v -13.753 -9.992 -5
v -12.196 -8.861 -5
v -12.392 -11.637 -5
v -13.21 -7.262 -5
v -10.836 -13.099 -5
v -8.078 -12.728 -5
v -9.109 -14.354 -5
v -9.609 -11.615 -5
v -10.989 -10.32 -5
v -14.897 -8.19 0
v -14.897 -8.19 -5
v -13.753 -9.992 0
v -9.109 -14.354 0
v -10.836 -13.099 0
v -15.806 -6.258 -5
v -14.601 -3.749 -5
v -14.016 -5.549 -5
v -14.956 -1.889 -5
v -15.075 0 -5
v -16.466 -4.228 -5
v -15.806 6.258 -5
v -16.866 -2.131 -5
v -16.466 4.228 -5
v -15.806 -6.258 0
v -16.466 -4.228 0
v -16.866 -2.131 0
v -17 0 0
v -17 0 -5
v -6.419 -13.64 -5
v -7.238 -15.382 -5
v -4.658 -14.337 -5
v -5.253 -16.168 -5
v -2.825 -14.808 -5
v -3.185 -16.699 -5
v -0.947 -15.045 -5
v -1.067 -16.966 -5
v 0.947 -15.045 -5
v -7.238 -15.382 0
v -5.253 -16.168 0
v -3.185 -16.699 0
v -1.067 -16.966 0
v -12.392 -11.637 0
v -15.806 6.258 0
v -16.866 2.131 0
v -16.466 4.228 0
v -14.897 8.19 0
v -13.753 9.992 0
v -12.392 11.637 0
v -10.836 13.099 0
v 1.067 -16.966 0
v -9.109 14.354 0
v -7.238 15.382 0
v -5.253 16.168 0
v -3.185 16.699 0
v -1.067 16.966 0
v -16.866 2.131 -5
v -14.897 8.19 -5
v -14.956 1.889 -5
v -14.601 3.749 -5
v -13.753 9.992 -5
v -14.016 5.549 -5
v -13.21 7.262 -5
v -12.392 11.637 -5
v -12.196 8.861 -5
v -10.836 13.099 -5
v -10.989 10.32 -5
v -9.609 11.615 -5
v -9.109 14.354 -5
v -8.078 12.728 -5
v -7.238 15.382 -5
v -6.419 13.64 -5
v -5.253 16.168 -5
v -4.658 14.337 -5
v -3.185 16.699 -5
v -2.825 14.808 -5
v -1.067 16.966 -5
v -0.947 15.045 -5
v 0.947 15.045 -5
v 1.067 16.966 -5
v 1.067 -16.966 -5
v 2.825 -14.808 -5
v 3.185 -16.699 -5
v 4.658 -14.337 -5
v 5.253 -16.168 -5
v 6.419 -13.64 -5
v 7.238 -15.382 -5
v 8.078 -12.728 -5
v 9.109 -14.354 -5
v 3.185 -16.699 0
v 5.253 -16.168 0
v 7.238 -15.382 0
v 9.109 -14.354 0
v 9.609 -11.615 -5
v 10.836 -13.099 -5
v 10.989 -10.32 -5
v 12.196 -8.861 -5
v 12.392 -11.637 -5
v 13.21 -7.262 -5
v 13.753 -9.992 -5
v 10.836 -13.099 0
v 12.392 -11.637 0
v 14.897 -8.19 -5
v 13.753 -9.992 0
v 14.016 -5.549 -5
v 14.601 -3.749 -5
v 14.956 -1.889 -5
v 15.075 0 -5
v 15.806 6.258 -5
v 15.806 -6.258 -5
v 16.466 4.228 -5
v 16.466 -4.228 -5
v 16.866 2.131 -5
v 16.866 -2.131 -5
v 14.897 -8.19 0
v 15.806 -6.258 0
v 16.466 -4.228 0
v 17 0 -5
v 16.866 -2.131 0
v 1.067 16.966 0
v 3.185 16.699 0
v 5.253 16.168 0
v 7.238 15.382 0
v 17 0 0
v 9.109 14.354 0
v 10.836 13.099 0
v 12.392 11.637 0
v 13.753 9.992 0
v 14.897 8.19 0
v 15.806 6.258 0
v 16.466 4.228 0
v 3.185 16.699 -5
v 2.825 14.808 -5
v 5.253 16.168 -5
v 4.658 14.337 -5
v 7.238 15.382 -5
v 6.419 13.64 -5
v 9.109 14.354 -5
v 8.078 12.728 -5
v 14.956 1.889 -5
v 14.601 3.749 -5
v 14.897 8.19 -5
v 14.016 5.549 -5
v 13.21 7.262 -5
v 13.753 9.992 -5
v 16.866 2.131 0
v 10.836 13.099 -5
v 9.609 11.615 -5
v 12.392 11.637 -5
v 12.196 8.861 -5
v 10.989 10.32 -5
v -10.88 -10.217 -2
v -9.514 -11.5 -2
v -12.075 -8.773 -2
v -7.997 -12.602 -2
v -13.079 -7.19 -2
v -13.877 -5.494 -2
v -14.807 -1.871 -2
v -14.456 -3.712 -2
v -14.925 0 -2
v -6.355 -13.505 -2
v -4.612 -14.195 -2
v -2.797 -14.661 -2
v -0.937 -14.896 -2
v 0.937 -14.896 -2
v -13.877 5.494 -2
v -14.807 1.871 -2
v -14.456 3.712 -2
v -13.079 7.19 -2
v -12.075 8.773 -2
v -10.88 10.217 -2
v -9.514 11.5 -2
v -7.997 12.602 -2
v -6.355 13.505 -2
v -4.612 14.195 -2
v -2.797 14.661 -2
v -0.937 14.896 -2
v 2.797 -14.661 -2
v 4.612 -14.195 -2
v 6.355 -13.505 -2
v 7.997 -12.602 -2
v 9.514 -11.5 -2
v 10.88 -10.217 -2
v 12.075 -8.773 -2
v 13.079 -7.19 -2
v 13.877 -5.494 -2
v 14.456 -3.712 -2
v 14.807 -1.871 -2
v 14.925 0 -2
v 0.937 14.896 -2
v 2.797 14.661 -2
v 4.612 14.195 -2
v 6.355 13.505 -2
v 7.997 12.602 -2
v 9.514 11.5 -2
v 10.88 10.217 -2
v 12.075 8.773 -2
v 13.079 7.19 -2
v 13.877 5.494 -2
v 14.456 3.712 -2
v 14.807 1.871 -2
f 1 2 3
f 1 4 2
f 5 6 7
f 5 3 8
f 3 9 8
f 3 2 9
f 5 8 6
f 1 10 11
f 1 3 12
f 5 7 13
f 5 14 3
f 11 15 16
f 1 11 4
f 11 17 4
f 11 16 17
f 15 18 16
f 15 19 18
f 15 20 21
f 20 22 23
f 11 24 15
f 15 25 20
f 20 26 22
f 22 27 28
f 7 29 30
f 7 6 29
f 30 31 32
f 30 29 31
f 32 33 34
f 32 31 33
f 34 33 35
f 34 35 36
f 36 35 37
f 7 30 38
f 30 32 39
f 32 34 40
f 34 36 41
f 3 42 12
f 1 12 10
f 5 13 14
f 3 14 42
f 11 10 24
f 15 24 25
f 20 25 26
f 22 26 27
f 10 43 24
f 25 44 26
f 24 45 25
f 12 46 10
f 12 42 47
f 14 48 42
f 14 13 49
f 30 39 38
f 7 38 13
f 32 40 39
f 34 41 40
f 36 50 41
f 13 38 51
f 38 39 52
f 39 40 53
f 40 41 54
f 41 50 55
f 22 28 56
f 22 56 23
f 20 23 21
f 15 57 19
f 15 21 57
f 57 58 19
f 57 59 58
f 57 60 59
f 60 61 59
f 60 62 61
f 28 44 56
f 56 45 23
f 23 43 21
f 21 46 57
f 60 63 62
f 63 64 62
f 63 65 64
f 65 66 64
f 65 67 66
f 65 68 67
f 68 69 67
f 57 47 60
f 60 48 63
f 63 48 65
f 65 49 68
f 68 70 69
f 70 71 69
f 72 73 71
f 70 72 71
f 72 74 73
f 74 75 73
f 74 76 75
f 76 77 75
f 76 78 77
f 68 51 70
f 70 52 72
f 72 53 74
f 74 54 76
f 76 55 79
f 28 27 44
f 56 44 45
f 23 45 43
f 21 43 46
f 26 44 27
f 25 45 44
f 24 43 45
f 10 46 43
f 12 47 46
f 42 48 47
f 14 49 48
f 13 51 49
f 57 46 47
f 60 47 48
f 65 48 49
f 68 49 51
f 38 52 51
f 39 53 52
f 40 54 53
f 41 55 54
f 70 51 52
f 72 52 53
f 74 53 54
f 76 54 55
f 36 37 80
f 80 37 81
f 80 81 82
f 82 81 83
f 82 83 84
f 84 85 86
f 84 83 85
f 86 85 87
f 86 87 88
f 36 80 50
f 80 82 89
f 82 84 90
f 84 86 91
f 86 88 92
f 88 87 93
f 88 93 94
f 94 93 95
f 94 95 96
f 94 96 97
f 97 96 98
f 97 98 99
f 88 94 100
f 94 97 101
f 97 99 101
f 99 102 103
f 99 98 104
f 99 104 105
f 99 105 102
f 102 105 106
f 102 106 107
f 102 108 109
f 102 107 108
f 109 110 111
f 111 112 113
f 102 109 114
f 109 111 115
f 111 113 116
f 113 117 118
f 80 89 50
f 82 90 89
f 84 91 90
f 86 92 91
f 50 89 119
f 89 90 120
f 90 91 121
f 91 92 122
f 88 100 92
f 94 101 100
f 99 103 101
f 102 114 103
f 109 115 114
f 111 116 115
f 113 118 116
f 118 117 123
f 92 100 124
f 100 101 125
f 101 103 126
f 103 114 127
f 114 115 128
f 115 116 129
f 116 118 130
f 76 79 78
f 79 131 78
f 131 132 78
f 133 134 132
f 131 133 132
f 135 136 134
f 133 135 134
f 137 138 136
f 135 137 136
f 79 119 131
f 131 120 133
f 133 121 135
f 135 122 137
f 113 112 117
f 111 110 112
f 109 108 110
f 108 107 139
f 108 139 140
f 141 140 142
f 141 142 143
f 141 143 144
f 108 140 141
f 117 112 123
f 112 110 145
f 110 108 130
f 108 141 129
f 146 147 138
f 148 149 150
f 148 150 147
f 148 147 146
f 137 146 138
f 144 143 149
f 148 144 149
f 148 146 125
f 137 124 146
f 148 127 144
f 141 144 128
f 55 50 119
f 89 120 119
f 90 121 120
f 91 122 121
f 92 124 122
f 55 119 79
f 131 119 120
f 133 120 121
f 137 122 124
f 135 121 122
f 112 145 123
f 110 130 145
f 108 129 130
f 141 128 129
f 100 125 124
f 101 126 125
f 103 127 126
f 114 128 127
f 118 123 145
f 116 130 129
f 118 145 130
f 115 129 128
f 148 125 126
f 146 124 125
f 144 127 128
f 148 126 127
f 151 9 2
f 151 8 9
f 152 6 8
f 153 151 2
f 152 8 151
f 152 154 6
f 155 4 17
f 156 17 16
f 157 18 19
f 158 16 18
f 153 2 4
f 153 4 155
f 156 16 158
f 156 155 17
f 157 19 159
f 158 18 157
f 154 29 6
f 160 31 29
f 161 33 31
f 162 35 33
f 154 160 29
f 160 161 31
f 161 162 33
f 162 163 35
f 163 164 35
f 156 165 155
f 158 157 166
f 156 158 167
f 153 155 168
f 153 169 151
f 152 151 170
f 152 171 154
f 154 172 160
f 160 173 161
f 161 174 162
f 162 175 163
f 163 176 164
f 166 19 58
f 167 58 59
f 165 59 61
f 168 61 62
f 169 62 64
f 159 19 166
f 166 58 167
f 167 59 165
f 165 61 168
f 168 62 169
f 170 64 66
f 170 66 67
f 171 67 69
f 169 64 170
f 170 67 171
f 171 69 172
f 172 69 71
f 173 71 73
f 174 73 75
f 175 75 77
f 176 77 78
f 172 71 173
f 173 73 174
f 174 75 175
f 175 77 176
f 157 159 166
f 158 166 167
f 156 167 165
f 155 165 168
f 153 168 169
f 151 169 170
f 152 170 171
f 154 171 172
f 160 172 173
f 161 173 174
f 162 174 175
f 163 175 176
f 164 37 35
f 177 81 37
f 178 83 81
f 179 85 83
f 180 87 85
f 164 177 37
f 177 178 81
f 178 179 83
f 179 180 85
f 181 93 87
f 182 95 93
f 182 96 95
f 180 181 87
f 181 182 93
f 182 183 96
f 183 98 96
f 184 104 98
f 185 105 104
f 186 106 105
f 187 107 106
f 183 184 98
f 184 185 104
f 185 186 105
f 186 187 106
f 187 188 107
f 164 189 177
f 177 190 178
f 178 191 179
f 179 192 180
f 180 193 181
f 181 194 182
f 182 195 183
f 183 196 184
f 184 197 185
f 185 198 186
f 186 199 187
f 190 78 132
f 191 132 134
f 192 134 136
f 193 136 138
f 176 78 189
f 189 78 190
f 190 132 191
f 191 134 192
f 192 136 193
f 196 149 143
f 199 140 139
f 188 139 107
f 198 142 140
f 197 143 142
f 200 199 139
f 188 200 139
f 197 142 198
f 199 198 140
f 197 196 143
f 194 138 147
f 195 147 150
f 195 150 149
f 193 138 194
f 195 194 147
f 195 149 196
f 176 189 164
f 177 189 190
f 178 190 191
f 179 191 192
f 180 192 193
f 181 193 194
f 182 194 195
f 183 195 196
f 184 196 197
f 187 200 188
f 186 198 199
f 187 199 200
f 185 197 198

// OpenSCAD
$fn = 50;


difference() {
	union() {
		translate(v = [0, 0, -5.0000000000]) {
			cylinder(h = 5, r = 17.0000000000);
		}
	}
	union() {
		#translate(v = [0, 0, -5.0000000000]) {
			cylinder(h = 3, r1 = 15.0750000000, r2 = 14.9250000000);
		}
	}
}
